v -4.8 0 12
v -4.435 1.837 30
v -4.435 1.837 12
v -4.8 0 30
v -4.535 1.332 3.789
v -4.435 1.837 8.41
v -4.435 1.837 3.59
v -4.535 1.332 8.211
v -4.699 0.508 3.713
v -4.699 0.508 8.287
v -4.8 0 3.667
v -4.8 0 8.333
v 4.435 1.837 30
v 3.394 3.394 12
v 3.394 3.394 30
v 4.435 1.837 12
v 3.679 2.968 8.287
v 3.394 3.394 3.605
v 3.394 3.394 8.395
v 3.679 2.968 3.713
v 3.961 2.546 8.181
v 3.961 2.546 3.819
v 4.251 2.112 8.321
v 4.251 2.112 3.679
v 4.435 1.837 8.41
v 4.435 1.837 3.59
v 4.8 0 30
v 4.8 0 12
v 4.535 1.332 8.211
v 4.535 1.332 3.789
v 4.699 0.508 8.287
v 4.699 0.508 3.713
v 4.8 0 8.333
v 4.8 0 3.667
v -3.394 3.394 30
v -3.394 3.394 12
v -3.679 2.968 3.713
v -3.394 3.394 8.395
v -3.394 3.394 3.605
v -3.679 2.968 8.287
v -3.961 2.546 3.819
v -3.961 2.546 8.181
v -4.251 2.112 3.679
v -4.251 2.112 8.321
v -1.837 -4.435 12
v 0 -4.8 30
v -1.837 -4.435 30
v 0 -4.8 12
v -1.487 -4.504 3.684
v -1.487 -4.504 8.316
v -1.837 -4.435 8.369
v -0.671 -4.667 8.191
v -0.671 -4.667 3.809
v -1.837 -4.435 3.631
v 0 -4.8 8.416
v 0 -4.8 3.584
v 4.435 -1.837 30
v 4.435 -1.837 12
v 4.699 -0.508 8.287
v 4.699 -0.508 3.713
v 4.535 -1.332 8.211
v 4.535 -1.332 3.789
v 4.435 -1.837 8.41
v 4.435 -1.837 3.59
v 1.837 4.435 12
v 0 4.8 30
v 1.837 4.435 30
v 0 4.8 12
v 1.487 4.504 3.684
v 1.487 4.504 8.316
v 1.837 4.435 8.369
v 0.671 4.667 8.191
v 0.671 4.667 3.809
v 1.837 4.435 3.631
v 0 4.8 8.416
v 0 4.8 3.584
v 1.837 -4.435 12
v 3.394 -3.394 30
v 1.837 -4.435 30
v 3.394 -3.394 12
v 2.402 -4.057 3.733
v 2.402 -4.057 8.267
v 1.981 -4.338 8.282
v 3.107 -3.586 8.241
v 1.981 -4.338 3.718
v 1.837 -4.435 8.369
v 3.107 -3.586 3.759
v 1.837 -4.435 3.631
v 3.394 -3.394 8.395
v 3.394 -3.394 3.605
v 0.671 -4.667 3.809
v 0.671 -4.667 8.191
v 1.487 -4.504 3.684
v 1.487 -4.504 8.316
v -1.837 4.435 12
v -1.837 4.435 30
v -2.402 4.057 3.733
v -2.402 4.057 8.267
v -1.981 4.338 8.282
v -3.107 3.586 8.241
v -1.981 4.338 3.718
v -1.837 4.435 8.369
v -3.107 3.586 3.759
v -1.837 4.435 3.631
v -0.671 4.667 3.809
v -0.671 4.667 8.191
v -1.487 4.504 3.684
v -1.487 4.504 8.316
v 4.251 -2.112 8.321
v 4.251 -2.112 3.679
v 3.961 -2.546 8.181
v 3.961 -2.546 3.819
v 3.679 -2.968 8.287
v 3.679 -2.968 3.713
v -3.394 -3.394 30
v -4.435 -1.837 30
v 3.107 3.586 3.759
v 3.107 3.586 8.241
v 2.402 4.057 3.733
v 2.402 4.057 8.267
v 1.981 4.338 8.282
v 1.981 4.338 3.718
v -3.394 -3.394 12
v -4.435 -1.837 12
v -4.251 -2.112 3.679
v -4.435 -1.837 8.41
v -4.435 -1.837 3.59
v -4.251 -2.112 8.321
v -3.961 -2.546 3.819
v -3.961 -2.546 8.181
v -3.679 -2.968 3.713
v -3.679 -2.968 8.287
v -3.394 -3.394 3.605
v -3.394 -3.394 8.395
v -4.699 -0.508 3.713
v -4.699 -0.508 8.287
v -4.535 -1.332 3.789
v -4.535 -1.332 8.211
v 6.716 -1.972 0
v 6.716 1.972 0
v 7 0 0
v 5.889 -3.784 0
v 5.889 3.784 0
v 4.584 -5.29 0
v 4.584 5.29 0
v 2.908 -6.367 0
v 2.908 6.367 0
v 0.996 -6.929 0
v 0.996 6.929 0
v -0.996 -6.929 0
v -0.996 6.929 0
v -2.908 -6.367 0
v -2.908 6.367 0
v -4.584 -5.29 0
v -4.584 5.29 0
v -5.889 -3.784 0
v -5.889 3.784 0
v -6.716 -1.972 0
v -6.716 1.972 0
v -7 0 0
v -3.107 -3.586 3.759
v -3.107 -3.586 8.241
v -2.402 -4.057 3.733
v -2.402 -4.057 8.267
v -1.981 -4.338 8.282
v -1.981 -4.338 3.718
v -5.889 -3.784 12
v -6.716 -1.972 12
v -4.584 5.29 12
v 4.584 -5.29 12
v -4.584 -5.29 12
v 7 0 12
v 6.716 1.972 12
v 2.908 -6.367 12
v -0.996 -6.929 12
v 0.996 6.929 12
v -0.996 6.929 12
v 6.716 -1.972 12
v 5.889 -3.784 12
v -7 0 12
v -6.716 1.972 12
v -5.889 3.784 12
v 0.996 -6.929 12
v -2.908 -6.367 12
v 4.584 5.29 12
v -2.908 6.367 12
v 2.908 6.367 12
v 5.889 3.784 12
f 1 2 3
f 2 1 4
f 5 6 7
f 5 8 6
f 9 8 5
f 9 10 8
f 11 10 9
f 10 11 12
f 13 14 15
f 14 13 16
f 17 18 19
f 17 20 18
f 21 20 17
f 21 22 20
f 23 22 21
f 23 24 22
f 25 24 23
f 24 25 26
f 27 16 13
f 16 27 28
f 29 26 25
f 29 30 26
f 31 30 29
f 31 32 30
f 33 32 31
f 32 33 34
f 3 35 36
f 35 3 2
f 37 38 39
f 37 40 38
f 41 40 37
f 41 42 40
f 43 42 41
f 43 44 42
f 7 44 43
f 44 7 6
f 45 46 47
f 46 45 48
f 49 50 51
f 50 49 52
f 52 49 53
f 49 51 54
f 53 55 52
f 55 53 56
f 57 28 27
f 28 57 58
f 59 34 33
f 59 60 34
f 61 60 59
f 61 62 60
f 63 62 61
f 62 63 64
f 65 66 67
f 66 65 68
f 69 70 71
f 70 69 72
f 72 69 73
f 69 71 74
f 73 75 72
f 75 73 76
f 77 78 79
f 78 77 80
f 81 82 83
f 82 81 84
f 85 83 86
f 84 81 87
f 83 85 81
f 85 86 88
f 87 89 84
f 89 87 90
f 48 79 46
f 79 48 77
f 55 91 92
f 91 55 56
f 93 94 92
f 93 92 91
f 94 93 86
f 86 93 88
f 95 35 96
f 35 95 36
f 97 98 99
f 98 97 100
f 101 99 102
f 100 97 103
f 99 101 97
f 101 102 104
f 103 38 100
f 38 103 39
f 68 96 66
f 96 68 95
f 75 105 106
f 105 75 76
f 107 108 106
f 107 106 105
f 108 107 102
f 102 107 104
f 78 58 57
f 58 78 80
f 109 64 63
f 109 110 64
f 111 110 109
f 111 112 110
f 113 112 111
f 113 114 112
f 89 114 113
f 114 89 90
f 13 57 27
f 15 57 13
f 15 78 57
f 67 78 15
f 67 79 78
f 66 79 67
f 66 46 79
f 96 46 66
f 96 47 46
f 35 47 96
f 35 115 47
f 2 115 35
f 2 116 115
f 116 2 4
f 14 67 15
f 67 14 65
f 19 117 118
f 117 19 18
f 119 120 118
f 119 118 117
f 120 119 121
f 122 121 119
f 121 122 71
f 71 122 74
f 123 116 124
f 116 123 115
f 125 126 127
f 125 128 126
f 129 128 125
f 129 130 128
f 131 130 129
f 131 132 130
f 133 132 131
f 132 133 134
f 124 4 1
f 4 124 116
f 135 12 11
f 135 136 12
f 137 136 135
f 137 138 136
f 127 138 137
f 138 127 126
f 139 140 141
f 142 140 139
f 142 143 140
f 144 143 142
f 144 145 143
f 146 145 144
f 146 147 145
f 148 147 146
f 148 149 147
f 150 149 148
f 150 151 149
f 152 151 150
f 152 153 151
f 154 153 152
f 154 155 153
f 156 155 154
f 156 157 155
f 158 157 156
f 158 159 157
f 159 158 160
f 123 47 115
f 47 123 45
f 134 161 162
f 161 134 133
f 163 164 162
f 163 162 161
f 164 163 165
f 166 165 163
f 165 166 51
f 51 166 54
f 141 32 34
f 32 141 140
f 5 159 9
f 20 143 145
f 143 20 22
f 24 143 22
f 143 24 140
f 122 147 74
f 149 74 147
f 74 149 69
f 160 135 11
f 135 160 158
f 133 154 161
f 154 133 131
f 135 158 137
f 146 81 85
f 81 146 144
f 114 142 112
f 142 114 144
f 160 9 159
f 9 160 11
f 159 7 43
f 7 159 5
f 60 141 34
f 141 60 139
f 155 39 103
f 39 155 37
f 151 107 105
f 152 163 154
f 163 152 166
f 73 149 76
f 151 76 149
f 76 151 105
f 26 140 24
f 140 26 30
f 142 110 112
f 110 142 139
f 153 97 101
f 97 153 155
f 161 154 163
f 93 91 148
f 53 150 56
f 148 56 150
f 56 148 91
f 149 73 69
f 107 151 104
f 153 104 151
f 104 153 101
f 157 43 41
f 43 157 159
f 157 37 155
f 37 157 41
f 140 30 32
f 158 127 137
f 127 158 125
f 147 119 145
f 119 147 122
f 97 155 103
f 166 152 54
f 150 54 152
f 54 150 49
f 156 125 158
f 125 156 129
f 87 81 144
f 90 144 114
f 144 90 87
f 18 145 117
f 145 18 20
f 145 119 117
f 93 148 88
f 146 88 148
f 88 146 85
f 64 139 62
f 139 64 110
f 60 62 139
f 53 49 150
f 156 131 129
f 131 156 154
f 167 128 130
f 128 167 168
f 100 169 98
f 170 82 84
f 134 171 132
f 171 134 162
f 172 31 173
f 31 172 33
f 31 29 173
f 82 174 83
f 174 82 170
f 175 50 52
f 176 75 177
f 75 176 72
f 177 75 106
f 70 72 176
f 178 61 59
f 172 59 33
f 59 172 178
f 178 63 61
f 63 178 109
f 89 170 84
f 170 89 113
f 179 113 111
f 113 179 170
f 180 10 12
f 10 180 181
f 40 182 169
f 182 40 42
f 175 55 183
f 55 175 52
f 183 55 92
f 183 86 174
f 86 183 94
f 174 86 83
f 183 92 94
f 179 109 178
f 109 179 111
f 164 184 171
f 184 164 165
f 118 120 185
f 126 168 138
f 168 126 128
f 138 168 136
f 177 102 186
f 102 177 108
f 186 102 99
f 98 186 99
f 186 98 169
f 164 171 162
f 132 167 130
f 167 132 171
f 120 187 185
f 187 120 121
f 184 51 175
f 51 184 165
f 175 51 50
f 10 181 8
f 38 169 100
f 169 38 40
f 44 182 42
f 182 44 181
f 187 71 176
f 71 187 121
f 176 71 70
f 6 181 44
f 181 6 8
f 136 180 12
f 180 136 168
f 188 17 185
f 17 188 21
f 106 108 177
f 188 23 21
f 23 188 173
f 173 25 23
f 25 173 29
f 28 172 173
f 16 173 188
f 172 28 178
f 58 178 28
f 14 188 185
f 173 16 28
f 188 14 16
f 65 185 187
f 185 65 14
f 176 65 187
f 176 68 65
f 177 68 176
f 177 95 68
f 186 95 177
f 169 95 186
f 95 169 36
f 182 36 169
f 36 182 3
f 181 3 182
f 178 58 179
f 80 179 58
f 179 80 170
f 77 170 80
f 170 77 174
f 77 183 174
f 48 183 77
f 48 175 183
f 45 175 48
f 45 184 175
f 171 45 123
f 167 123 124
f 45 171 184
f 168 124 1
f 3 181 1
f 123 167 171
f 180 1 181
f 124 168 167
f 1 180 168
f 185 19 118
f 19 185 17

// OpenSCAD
// ベースの柱
cylinder(30,4.8,4.8);

// イヤホン掛けておく円１
cylinder(5,7,4);

//イヤホン掛けておく円２
translate([0,0,7]){
    cylinder(5,4,7);
}
